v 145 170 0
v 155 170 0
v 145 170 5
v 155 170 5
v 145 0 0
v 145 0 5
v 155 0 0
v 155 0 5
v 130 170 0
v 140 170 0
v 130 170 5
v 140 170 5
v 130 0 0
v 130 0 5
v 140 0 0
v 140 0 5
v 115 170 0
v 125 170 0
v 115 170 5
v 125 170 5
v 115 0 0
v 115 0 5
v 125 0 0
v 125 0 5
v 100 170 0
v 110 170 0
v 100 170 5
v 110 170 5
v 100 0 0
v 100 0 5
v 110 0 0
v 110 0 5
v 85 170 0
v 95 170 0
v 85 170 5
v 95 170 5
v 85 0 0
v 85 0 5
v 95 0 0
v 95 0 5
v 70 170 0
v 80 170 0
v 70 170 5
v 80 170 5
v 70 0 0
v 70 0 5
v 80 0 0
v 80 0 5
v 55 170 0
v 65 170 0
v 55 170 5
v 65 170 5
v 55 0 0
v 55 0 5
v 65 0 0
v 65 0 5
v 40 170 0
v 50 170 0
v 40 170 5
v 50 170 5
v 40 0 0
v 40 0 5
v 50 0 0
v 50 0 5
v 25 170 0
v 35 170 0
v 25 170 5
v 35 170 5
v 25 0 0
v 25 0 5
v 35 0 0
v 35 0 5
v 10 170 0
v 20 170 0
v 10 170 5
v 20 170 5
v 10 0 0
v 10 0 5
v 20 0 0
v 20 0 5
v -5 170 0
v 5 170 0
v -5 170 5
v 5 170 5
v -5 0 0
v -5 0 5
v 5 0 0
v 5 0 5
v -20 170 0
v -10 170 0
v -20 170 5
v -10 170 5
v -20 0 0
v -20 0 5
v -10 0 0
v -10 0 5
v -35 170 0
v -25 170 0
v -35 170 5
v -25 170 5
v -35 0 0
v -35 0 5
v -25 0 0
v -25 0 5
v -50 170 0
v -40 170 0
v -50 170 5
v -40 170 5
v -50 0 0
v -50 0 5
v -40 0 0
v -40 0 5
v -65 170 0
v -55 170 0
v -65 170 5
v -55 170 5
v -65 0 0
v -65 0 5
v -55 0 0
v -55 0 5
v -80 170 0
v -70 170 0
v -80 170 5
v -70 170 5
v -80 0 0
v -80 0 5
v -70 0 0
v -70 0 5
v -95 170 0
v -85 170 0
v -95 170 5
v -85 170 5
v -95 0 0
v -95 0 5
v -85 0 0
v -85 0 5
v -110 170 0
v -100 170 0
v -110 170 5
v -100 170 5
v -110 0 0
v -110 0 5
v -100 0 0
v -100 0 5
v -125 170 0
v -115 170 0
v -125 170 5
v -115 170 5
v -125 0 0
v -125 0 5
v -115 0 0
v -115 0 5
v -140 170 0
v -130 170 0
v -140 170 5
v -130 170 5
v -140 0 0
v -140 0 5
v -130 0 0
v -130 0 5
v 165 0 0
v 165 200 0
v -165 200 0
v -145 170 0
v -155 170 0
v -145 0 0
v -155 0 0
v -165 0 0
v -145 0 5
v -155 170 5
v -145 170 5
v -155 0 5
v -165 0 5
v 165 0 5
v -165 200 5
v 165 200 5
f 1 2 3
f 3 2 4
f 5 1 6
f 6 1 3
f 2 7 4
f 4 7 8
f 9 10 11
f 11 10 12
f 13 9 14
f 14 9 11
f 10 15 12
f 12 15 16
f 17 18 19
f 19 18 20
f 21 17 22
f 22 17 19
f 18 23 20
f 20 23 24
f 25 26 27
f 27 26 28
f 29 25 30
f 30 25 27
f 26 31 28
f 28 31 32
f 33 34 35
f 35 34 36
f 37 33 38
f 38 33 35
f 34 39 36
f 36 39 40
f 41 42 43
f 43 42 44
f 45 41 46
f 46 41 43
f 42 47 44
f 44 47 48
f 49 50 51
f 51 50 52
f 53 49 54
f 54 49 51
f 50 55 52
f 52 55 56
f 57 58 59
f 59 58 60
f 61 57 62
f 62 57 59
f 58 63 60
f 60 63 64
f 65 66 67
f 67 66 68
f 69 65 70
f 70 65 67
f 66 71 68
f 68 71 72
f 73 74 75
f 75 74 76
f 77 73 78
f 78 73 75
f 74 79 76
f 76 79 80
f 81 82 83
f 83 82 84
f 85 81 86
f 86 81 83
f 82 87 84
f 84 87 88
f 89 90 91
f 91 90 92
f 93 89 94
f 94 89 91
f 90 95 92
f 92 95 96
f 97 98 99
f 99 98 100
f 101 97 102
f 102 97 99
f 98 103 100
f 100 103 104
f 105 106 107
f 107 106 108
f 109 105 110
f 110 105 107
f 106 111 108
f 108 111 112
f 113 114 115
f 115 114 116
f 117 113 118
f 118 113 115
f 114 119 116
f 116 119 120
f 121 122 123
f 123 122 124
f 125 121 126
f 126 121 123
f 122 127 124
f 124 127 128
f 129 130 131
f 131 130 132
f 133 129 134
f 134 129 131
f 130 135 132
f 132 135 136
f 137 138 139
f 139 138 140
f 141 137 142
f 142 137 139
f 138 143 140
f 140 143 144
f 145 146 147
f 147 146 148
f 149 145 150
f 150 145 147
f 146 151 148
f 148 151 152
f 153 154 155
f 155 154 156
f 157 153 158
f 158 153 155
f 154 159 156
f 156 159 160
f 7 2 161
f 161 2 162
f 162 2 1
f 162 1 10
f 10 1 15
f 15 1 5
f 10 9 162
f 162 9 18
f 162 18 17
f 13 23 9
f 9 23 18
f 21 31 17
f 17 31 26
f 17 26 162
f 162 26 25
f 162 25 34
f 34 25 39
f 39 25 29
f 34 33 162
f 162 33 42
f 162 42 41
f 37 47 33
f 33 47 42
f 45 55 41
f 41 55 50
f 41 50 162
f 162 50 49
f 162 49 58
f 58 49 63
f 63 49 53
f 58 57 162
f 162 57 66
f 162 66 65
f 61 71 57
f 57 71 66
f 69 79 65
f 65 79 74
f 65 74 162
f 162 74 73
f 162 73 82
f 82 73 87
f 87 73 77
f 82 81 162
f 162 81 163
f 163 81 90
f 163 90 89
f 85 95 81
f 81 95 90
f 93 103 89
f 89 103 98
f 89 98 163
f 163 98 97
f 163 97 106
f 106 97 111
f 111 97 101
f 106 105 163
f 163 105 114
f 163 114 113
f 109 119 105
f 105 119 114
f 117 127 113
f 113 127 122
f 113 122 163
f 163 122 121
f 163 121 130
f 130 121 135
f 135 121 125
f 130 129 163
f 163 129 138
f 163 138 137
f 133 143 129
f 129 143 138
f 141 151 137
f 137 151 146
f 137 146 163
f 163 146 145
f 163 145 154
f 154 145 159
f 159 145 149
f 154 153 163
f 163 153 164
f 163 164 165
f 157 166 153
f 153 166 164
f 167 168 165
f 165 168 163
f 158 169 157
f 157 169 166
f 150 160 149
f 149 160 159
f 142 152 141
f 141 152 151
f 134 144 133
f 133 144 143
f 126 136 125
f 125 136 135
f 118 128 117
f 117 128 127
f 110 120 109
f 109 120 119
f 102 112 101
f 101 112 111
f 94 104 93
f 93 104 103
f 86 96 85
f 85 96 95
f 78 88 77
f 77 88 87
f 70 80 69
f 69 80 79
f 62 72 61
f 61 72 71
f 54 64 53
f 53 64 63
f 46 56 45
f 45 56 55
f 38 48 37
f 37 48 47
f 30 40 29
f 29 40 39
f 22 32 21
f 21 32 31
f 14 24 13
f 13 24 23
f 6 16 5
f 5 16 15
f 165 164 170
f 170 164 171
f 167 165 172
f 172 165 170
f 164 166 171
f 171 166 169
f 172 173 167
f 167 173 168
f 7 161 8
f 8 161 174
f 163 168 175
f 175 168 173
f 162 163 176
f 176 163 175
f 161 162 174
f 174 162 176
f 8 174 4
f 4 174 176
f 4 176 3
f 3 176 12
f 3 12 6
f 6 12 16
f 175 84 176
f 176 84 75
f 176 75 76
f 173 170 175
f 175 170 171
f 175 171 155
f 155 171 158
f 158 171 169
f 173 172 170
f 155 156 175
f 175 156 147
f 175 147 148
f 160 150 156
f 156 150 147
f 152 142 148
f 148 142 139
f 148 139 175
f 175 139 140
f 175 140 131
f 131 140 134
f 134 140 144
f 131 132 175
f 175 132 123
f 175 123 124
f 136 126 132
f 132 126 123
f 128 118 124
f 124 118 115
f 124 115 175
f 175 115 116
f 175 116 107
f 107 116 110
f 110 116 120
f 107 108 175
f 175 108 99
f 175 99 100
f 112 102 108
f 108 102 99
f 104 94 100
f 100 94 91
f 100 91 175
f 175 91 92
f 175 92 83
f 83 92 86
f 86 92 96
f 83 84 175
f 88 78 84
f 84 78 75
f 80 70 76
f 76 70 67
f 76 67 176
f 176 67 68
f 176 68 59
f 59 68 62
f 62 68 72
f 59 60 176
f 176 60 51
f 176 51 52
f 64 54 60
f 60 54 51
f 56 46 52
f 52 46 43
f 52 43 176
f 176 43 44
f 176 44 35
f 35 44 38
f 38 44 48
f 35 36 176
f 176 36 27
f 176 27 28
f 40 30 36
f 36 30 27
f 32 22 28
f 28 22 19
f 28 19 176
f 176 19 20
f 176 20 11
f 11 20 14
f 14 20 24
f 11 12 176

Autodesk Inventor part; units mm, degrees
ref_plane "YZ Plane" through (0, 0, 0) normal (1, 0, 0) x (0, 1, 0)
ref_plane "XZ Plane" through (0, 0, 0) normal (0, 1, 0) x (-1, 0, 0)
ref_plane "XY Plane" through (0, 0, 0) normal (0, 0, 1) x (1, 0, 0)
sketch "草图1" plane through (0, 0, 0) normal (0, 0, 1) x (1, 0, 0)
  line L0 (-165, 200) -> (165, 200)
  line L1 (165, 200) -> (165, 0)
  line L2 (165, 0) -> (-165, 0)
  line L3 (-165, 0) -> (-165, 200)
  line L4 (0, -40) -> (0, 240) projected
  line L5 (-231, 0) -> (231, 0) projected
  point P0 (0, 0)
  dimension "d0" = 330
  dimension "d1" = 200
  dimension "d2" = 200
extrude "拉伸1" add sketch "草图1" along normal blind 5
sketch "草图2" plane through (0, 0, 5) normal (0, 0, 1) x (1, 0, 0)
  line L0 (-155, 170) -> (-145, 170)
  line L1 (-145, 170) -> (-145, 0)
  line L2 (-145, 0) -> (-155, 0)
  line L3 (-155, 0) -> (-155, 170)
  line L4 (-165, 200) -> (-165, 0) projected
  line L5 (165, 200) -> (-165, 200) projected
  point P0 (0, 0)
  point P1 (-150, 170)
  dimension "d5" = 10
  dimension "d6" = 10
  dimension "d7" = 30
extrude "拉伸2" cut sketch "草图2" against normal through all
pattern_linear "矩形阵列1" count 21 spacing 15 along (1, 0, 0) of "拉伸2"
properties part number "猫铲"
